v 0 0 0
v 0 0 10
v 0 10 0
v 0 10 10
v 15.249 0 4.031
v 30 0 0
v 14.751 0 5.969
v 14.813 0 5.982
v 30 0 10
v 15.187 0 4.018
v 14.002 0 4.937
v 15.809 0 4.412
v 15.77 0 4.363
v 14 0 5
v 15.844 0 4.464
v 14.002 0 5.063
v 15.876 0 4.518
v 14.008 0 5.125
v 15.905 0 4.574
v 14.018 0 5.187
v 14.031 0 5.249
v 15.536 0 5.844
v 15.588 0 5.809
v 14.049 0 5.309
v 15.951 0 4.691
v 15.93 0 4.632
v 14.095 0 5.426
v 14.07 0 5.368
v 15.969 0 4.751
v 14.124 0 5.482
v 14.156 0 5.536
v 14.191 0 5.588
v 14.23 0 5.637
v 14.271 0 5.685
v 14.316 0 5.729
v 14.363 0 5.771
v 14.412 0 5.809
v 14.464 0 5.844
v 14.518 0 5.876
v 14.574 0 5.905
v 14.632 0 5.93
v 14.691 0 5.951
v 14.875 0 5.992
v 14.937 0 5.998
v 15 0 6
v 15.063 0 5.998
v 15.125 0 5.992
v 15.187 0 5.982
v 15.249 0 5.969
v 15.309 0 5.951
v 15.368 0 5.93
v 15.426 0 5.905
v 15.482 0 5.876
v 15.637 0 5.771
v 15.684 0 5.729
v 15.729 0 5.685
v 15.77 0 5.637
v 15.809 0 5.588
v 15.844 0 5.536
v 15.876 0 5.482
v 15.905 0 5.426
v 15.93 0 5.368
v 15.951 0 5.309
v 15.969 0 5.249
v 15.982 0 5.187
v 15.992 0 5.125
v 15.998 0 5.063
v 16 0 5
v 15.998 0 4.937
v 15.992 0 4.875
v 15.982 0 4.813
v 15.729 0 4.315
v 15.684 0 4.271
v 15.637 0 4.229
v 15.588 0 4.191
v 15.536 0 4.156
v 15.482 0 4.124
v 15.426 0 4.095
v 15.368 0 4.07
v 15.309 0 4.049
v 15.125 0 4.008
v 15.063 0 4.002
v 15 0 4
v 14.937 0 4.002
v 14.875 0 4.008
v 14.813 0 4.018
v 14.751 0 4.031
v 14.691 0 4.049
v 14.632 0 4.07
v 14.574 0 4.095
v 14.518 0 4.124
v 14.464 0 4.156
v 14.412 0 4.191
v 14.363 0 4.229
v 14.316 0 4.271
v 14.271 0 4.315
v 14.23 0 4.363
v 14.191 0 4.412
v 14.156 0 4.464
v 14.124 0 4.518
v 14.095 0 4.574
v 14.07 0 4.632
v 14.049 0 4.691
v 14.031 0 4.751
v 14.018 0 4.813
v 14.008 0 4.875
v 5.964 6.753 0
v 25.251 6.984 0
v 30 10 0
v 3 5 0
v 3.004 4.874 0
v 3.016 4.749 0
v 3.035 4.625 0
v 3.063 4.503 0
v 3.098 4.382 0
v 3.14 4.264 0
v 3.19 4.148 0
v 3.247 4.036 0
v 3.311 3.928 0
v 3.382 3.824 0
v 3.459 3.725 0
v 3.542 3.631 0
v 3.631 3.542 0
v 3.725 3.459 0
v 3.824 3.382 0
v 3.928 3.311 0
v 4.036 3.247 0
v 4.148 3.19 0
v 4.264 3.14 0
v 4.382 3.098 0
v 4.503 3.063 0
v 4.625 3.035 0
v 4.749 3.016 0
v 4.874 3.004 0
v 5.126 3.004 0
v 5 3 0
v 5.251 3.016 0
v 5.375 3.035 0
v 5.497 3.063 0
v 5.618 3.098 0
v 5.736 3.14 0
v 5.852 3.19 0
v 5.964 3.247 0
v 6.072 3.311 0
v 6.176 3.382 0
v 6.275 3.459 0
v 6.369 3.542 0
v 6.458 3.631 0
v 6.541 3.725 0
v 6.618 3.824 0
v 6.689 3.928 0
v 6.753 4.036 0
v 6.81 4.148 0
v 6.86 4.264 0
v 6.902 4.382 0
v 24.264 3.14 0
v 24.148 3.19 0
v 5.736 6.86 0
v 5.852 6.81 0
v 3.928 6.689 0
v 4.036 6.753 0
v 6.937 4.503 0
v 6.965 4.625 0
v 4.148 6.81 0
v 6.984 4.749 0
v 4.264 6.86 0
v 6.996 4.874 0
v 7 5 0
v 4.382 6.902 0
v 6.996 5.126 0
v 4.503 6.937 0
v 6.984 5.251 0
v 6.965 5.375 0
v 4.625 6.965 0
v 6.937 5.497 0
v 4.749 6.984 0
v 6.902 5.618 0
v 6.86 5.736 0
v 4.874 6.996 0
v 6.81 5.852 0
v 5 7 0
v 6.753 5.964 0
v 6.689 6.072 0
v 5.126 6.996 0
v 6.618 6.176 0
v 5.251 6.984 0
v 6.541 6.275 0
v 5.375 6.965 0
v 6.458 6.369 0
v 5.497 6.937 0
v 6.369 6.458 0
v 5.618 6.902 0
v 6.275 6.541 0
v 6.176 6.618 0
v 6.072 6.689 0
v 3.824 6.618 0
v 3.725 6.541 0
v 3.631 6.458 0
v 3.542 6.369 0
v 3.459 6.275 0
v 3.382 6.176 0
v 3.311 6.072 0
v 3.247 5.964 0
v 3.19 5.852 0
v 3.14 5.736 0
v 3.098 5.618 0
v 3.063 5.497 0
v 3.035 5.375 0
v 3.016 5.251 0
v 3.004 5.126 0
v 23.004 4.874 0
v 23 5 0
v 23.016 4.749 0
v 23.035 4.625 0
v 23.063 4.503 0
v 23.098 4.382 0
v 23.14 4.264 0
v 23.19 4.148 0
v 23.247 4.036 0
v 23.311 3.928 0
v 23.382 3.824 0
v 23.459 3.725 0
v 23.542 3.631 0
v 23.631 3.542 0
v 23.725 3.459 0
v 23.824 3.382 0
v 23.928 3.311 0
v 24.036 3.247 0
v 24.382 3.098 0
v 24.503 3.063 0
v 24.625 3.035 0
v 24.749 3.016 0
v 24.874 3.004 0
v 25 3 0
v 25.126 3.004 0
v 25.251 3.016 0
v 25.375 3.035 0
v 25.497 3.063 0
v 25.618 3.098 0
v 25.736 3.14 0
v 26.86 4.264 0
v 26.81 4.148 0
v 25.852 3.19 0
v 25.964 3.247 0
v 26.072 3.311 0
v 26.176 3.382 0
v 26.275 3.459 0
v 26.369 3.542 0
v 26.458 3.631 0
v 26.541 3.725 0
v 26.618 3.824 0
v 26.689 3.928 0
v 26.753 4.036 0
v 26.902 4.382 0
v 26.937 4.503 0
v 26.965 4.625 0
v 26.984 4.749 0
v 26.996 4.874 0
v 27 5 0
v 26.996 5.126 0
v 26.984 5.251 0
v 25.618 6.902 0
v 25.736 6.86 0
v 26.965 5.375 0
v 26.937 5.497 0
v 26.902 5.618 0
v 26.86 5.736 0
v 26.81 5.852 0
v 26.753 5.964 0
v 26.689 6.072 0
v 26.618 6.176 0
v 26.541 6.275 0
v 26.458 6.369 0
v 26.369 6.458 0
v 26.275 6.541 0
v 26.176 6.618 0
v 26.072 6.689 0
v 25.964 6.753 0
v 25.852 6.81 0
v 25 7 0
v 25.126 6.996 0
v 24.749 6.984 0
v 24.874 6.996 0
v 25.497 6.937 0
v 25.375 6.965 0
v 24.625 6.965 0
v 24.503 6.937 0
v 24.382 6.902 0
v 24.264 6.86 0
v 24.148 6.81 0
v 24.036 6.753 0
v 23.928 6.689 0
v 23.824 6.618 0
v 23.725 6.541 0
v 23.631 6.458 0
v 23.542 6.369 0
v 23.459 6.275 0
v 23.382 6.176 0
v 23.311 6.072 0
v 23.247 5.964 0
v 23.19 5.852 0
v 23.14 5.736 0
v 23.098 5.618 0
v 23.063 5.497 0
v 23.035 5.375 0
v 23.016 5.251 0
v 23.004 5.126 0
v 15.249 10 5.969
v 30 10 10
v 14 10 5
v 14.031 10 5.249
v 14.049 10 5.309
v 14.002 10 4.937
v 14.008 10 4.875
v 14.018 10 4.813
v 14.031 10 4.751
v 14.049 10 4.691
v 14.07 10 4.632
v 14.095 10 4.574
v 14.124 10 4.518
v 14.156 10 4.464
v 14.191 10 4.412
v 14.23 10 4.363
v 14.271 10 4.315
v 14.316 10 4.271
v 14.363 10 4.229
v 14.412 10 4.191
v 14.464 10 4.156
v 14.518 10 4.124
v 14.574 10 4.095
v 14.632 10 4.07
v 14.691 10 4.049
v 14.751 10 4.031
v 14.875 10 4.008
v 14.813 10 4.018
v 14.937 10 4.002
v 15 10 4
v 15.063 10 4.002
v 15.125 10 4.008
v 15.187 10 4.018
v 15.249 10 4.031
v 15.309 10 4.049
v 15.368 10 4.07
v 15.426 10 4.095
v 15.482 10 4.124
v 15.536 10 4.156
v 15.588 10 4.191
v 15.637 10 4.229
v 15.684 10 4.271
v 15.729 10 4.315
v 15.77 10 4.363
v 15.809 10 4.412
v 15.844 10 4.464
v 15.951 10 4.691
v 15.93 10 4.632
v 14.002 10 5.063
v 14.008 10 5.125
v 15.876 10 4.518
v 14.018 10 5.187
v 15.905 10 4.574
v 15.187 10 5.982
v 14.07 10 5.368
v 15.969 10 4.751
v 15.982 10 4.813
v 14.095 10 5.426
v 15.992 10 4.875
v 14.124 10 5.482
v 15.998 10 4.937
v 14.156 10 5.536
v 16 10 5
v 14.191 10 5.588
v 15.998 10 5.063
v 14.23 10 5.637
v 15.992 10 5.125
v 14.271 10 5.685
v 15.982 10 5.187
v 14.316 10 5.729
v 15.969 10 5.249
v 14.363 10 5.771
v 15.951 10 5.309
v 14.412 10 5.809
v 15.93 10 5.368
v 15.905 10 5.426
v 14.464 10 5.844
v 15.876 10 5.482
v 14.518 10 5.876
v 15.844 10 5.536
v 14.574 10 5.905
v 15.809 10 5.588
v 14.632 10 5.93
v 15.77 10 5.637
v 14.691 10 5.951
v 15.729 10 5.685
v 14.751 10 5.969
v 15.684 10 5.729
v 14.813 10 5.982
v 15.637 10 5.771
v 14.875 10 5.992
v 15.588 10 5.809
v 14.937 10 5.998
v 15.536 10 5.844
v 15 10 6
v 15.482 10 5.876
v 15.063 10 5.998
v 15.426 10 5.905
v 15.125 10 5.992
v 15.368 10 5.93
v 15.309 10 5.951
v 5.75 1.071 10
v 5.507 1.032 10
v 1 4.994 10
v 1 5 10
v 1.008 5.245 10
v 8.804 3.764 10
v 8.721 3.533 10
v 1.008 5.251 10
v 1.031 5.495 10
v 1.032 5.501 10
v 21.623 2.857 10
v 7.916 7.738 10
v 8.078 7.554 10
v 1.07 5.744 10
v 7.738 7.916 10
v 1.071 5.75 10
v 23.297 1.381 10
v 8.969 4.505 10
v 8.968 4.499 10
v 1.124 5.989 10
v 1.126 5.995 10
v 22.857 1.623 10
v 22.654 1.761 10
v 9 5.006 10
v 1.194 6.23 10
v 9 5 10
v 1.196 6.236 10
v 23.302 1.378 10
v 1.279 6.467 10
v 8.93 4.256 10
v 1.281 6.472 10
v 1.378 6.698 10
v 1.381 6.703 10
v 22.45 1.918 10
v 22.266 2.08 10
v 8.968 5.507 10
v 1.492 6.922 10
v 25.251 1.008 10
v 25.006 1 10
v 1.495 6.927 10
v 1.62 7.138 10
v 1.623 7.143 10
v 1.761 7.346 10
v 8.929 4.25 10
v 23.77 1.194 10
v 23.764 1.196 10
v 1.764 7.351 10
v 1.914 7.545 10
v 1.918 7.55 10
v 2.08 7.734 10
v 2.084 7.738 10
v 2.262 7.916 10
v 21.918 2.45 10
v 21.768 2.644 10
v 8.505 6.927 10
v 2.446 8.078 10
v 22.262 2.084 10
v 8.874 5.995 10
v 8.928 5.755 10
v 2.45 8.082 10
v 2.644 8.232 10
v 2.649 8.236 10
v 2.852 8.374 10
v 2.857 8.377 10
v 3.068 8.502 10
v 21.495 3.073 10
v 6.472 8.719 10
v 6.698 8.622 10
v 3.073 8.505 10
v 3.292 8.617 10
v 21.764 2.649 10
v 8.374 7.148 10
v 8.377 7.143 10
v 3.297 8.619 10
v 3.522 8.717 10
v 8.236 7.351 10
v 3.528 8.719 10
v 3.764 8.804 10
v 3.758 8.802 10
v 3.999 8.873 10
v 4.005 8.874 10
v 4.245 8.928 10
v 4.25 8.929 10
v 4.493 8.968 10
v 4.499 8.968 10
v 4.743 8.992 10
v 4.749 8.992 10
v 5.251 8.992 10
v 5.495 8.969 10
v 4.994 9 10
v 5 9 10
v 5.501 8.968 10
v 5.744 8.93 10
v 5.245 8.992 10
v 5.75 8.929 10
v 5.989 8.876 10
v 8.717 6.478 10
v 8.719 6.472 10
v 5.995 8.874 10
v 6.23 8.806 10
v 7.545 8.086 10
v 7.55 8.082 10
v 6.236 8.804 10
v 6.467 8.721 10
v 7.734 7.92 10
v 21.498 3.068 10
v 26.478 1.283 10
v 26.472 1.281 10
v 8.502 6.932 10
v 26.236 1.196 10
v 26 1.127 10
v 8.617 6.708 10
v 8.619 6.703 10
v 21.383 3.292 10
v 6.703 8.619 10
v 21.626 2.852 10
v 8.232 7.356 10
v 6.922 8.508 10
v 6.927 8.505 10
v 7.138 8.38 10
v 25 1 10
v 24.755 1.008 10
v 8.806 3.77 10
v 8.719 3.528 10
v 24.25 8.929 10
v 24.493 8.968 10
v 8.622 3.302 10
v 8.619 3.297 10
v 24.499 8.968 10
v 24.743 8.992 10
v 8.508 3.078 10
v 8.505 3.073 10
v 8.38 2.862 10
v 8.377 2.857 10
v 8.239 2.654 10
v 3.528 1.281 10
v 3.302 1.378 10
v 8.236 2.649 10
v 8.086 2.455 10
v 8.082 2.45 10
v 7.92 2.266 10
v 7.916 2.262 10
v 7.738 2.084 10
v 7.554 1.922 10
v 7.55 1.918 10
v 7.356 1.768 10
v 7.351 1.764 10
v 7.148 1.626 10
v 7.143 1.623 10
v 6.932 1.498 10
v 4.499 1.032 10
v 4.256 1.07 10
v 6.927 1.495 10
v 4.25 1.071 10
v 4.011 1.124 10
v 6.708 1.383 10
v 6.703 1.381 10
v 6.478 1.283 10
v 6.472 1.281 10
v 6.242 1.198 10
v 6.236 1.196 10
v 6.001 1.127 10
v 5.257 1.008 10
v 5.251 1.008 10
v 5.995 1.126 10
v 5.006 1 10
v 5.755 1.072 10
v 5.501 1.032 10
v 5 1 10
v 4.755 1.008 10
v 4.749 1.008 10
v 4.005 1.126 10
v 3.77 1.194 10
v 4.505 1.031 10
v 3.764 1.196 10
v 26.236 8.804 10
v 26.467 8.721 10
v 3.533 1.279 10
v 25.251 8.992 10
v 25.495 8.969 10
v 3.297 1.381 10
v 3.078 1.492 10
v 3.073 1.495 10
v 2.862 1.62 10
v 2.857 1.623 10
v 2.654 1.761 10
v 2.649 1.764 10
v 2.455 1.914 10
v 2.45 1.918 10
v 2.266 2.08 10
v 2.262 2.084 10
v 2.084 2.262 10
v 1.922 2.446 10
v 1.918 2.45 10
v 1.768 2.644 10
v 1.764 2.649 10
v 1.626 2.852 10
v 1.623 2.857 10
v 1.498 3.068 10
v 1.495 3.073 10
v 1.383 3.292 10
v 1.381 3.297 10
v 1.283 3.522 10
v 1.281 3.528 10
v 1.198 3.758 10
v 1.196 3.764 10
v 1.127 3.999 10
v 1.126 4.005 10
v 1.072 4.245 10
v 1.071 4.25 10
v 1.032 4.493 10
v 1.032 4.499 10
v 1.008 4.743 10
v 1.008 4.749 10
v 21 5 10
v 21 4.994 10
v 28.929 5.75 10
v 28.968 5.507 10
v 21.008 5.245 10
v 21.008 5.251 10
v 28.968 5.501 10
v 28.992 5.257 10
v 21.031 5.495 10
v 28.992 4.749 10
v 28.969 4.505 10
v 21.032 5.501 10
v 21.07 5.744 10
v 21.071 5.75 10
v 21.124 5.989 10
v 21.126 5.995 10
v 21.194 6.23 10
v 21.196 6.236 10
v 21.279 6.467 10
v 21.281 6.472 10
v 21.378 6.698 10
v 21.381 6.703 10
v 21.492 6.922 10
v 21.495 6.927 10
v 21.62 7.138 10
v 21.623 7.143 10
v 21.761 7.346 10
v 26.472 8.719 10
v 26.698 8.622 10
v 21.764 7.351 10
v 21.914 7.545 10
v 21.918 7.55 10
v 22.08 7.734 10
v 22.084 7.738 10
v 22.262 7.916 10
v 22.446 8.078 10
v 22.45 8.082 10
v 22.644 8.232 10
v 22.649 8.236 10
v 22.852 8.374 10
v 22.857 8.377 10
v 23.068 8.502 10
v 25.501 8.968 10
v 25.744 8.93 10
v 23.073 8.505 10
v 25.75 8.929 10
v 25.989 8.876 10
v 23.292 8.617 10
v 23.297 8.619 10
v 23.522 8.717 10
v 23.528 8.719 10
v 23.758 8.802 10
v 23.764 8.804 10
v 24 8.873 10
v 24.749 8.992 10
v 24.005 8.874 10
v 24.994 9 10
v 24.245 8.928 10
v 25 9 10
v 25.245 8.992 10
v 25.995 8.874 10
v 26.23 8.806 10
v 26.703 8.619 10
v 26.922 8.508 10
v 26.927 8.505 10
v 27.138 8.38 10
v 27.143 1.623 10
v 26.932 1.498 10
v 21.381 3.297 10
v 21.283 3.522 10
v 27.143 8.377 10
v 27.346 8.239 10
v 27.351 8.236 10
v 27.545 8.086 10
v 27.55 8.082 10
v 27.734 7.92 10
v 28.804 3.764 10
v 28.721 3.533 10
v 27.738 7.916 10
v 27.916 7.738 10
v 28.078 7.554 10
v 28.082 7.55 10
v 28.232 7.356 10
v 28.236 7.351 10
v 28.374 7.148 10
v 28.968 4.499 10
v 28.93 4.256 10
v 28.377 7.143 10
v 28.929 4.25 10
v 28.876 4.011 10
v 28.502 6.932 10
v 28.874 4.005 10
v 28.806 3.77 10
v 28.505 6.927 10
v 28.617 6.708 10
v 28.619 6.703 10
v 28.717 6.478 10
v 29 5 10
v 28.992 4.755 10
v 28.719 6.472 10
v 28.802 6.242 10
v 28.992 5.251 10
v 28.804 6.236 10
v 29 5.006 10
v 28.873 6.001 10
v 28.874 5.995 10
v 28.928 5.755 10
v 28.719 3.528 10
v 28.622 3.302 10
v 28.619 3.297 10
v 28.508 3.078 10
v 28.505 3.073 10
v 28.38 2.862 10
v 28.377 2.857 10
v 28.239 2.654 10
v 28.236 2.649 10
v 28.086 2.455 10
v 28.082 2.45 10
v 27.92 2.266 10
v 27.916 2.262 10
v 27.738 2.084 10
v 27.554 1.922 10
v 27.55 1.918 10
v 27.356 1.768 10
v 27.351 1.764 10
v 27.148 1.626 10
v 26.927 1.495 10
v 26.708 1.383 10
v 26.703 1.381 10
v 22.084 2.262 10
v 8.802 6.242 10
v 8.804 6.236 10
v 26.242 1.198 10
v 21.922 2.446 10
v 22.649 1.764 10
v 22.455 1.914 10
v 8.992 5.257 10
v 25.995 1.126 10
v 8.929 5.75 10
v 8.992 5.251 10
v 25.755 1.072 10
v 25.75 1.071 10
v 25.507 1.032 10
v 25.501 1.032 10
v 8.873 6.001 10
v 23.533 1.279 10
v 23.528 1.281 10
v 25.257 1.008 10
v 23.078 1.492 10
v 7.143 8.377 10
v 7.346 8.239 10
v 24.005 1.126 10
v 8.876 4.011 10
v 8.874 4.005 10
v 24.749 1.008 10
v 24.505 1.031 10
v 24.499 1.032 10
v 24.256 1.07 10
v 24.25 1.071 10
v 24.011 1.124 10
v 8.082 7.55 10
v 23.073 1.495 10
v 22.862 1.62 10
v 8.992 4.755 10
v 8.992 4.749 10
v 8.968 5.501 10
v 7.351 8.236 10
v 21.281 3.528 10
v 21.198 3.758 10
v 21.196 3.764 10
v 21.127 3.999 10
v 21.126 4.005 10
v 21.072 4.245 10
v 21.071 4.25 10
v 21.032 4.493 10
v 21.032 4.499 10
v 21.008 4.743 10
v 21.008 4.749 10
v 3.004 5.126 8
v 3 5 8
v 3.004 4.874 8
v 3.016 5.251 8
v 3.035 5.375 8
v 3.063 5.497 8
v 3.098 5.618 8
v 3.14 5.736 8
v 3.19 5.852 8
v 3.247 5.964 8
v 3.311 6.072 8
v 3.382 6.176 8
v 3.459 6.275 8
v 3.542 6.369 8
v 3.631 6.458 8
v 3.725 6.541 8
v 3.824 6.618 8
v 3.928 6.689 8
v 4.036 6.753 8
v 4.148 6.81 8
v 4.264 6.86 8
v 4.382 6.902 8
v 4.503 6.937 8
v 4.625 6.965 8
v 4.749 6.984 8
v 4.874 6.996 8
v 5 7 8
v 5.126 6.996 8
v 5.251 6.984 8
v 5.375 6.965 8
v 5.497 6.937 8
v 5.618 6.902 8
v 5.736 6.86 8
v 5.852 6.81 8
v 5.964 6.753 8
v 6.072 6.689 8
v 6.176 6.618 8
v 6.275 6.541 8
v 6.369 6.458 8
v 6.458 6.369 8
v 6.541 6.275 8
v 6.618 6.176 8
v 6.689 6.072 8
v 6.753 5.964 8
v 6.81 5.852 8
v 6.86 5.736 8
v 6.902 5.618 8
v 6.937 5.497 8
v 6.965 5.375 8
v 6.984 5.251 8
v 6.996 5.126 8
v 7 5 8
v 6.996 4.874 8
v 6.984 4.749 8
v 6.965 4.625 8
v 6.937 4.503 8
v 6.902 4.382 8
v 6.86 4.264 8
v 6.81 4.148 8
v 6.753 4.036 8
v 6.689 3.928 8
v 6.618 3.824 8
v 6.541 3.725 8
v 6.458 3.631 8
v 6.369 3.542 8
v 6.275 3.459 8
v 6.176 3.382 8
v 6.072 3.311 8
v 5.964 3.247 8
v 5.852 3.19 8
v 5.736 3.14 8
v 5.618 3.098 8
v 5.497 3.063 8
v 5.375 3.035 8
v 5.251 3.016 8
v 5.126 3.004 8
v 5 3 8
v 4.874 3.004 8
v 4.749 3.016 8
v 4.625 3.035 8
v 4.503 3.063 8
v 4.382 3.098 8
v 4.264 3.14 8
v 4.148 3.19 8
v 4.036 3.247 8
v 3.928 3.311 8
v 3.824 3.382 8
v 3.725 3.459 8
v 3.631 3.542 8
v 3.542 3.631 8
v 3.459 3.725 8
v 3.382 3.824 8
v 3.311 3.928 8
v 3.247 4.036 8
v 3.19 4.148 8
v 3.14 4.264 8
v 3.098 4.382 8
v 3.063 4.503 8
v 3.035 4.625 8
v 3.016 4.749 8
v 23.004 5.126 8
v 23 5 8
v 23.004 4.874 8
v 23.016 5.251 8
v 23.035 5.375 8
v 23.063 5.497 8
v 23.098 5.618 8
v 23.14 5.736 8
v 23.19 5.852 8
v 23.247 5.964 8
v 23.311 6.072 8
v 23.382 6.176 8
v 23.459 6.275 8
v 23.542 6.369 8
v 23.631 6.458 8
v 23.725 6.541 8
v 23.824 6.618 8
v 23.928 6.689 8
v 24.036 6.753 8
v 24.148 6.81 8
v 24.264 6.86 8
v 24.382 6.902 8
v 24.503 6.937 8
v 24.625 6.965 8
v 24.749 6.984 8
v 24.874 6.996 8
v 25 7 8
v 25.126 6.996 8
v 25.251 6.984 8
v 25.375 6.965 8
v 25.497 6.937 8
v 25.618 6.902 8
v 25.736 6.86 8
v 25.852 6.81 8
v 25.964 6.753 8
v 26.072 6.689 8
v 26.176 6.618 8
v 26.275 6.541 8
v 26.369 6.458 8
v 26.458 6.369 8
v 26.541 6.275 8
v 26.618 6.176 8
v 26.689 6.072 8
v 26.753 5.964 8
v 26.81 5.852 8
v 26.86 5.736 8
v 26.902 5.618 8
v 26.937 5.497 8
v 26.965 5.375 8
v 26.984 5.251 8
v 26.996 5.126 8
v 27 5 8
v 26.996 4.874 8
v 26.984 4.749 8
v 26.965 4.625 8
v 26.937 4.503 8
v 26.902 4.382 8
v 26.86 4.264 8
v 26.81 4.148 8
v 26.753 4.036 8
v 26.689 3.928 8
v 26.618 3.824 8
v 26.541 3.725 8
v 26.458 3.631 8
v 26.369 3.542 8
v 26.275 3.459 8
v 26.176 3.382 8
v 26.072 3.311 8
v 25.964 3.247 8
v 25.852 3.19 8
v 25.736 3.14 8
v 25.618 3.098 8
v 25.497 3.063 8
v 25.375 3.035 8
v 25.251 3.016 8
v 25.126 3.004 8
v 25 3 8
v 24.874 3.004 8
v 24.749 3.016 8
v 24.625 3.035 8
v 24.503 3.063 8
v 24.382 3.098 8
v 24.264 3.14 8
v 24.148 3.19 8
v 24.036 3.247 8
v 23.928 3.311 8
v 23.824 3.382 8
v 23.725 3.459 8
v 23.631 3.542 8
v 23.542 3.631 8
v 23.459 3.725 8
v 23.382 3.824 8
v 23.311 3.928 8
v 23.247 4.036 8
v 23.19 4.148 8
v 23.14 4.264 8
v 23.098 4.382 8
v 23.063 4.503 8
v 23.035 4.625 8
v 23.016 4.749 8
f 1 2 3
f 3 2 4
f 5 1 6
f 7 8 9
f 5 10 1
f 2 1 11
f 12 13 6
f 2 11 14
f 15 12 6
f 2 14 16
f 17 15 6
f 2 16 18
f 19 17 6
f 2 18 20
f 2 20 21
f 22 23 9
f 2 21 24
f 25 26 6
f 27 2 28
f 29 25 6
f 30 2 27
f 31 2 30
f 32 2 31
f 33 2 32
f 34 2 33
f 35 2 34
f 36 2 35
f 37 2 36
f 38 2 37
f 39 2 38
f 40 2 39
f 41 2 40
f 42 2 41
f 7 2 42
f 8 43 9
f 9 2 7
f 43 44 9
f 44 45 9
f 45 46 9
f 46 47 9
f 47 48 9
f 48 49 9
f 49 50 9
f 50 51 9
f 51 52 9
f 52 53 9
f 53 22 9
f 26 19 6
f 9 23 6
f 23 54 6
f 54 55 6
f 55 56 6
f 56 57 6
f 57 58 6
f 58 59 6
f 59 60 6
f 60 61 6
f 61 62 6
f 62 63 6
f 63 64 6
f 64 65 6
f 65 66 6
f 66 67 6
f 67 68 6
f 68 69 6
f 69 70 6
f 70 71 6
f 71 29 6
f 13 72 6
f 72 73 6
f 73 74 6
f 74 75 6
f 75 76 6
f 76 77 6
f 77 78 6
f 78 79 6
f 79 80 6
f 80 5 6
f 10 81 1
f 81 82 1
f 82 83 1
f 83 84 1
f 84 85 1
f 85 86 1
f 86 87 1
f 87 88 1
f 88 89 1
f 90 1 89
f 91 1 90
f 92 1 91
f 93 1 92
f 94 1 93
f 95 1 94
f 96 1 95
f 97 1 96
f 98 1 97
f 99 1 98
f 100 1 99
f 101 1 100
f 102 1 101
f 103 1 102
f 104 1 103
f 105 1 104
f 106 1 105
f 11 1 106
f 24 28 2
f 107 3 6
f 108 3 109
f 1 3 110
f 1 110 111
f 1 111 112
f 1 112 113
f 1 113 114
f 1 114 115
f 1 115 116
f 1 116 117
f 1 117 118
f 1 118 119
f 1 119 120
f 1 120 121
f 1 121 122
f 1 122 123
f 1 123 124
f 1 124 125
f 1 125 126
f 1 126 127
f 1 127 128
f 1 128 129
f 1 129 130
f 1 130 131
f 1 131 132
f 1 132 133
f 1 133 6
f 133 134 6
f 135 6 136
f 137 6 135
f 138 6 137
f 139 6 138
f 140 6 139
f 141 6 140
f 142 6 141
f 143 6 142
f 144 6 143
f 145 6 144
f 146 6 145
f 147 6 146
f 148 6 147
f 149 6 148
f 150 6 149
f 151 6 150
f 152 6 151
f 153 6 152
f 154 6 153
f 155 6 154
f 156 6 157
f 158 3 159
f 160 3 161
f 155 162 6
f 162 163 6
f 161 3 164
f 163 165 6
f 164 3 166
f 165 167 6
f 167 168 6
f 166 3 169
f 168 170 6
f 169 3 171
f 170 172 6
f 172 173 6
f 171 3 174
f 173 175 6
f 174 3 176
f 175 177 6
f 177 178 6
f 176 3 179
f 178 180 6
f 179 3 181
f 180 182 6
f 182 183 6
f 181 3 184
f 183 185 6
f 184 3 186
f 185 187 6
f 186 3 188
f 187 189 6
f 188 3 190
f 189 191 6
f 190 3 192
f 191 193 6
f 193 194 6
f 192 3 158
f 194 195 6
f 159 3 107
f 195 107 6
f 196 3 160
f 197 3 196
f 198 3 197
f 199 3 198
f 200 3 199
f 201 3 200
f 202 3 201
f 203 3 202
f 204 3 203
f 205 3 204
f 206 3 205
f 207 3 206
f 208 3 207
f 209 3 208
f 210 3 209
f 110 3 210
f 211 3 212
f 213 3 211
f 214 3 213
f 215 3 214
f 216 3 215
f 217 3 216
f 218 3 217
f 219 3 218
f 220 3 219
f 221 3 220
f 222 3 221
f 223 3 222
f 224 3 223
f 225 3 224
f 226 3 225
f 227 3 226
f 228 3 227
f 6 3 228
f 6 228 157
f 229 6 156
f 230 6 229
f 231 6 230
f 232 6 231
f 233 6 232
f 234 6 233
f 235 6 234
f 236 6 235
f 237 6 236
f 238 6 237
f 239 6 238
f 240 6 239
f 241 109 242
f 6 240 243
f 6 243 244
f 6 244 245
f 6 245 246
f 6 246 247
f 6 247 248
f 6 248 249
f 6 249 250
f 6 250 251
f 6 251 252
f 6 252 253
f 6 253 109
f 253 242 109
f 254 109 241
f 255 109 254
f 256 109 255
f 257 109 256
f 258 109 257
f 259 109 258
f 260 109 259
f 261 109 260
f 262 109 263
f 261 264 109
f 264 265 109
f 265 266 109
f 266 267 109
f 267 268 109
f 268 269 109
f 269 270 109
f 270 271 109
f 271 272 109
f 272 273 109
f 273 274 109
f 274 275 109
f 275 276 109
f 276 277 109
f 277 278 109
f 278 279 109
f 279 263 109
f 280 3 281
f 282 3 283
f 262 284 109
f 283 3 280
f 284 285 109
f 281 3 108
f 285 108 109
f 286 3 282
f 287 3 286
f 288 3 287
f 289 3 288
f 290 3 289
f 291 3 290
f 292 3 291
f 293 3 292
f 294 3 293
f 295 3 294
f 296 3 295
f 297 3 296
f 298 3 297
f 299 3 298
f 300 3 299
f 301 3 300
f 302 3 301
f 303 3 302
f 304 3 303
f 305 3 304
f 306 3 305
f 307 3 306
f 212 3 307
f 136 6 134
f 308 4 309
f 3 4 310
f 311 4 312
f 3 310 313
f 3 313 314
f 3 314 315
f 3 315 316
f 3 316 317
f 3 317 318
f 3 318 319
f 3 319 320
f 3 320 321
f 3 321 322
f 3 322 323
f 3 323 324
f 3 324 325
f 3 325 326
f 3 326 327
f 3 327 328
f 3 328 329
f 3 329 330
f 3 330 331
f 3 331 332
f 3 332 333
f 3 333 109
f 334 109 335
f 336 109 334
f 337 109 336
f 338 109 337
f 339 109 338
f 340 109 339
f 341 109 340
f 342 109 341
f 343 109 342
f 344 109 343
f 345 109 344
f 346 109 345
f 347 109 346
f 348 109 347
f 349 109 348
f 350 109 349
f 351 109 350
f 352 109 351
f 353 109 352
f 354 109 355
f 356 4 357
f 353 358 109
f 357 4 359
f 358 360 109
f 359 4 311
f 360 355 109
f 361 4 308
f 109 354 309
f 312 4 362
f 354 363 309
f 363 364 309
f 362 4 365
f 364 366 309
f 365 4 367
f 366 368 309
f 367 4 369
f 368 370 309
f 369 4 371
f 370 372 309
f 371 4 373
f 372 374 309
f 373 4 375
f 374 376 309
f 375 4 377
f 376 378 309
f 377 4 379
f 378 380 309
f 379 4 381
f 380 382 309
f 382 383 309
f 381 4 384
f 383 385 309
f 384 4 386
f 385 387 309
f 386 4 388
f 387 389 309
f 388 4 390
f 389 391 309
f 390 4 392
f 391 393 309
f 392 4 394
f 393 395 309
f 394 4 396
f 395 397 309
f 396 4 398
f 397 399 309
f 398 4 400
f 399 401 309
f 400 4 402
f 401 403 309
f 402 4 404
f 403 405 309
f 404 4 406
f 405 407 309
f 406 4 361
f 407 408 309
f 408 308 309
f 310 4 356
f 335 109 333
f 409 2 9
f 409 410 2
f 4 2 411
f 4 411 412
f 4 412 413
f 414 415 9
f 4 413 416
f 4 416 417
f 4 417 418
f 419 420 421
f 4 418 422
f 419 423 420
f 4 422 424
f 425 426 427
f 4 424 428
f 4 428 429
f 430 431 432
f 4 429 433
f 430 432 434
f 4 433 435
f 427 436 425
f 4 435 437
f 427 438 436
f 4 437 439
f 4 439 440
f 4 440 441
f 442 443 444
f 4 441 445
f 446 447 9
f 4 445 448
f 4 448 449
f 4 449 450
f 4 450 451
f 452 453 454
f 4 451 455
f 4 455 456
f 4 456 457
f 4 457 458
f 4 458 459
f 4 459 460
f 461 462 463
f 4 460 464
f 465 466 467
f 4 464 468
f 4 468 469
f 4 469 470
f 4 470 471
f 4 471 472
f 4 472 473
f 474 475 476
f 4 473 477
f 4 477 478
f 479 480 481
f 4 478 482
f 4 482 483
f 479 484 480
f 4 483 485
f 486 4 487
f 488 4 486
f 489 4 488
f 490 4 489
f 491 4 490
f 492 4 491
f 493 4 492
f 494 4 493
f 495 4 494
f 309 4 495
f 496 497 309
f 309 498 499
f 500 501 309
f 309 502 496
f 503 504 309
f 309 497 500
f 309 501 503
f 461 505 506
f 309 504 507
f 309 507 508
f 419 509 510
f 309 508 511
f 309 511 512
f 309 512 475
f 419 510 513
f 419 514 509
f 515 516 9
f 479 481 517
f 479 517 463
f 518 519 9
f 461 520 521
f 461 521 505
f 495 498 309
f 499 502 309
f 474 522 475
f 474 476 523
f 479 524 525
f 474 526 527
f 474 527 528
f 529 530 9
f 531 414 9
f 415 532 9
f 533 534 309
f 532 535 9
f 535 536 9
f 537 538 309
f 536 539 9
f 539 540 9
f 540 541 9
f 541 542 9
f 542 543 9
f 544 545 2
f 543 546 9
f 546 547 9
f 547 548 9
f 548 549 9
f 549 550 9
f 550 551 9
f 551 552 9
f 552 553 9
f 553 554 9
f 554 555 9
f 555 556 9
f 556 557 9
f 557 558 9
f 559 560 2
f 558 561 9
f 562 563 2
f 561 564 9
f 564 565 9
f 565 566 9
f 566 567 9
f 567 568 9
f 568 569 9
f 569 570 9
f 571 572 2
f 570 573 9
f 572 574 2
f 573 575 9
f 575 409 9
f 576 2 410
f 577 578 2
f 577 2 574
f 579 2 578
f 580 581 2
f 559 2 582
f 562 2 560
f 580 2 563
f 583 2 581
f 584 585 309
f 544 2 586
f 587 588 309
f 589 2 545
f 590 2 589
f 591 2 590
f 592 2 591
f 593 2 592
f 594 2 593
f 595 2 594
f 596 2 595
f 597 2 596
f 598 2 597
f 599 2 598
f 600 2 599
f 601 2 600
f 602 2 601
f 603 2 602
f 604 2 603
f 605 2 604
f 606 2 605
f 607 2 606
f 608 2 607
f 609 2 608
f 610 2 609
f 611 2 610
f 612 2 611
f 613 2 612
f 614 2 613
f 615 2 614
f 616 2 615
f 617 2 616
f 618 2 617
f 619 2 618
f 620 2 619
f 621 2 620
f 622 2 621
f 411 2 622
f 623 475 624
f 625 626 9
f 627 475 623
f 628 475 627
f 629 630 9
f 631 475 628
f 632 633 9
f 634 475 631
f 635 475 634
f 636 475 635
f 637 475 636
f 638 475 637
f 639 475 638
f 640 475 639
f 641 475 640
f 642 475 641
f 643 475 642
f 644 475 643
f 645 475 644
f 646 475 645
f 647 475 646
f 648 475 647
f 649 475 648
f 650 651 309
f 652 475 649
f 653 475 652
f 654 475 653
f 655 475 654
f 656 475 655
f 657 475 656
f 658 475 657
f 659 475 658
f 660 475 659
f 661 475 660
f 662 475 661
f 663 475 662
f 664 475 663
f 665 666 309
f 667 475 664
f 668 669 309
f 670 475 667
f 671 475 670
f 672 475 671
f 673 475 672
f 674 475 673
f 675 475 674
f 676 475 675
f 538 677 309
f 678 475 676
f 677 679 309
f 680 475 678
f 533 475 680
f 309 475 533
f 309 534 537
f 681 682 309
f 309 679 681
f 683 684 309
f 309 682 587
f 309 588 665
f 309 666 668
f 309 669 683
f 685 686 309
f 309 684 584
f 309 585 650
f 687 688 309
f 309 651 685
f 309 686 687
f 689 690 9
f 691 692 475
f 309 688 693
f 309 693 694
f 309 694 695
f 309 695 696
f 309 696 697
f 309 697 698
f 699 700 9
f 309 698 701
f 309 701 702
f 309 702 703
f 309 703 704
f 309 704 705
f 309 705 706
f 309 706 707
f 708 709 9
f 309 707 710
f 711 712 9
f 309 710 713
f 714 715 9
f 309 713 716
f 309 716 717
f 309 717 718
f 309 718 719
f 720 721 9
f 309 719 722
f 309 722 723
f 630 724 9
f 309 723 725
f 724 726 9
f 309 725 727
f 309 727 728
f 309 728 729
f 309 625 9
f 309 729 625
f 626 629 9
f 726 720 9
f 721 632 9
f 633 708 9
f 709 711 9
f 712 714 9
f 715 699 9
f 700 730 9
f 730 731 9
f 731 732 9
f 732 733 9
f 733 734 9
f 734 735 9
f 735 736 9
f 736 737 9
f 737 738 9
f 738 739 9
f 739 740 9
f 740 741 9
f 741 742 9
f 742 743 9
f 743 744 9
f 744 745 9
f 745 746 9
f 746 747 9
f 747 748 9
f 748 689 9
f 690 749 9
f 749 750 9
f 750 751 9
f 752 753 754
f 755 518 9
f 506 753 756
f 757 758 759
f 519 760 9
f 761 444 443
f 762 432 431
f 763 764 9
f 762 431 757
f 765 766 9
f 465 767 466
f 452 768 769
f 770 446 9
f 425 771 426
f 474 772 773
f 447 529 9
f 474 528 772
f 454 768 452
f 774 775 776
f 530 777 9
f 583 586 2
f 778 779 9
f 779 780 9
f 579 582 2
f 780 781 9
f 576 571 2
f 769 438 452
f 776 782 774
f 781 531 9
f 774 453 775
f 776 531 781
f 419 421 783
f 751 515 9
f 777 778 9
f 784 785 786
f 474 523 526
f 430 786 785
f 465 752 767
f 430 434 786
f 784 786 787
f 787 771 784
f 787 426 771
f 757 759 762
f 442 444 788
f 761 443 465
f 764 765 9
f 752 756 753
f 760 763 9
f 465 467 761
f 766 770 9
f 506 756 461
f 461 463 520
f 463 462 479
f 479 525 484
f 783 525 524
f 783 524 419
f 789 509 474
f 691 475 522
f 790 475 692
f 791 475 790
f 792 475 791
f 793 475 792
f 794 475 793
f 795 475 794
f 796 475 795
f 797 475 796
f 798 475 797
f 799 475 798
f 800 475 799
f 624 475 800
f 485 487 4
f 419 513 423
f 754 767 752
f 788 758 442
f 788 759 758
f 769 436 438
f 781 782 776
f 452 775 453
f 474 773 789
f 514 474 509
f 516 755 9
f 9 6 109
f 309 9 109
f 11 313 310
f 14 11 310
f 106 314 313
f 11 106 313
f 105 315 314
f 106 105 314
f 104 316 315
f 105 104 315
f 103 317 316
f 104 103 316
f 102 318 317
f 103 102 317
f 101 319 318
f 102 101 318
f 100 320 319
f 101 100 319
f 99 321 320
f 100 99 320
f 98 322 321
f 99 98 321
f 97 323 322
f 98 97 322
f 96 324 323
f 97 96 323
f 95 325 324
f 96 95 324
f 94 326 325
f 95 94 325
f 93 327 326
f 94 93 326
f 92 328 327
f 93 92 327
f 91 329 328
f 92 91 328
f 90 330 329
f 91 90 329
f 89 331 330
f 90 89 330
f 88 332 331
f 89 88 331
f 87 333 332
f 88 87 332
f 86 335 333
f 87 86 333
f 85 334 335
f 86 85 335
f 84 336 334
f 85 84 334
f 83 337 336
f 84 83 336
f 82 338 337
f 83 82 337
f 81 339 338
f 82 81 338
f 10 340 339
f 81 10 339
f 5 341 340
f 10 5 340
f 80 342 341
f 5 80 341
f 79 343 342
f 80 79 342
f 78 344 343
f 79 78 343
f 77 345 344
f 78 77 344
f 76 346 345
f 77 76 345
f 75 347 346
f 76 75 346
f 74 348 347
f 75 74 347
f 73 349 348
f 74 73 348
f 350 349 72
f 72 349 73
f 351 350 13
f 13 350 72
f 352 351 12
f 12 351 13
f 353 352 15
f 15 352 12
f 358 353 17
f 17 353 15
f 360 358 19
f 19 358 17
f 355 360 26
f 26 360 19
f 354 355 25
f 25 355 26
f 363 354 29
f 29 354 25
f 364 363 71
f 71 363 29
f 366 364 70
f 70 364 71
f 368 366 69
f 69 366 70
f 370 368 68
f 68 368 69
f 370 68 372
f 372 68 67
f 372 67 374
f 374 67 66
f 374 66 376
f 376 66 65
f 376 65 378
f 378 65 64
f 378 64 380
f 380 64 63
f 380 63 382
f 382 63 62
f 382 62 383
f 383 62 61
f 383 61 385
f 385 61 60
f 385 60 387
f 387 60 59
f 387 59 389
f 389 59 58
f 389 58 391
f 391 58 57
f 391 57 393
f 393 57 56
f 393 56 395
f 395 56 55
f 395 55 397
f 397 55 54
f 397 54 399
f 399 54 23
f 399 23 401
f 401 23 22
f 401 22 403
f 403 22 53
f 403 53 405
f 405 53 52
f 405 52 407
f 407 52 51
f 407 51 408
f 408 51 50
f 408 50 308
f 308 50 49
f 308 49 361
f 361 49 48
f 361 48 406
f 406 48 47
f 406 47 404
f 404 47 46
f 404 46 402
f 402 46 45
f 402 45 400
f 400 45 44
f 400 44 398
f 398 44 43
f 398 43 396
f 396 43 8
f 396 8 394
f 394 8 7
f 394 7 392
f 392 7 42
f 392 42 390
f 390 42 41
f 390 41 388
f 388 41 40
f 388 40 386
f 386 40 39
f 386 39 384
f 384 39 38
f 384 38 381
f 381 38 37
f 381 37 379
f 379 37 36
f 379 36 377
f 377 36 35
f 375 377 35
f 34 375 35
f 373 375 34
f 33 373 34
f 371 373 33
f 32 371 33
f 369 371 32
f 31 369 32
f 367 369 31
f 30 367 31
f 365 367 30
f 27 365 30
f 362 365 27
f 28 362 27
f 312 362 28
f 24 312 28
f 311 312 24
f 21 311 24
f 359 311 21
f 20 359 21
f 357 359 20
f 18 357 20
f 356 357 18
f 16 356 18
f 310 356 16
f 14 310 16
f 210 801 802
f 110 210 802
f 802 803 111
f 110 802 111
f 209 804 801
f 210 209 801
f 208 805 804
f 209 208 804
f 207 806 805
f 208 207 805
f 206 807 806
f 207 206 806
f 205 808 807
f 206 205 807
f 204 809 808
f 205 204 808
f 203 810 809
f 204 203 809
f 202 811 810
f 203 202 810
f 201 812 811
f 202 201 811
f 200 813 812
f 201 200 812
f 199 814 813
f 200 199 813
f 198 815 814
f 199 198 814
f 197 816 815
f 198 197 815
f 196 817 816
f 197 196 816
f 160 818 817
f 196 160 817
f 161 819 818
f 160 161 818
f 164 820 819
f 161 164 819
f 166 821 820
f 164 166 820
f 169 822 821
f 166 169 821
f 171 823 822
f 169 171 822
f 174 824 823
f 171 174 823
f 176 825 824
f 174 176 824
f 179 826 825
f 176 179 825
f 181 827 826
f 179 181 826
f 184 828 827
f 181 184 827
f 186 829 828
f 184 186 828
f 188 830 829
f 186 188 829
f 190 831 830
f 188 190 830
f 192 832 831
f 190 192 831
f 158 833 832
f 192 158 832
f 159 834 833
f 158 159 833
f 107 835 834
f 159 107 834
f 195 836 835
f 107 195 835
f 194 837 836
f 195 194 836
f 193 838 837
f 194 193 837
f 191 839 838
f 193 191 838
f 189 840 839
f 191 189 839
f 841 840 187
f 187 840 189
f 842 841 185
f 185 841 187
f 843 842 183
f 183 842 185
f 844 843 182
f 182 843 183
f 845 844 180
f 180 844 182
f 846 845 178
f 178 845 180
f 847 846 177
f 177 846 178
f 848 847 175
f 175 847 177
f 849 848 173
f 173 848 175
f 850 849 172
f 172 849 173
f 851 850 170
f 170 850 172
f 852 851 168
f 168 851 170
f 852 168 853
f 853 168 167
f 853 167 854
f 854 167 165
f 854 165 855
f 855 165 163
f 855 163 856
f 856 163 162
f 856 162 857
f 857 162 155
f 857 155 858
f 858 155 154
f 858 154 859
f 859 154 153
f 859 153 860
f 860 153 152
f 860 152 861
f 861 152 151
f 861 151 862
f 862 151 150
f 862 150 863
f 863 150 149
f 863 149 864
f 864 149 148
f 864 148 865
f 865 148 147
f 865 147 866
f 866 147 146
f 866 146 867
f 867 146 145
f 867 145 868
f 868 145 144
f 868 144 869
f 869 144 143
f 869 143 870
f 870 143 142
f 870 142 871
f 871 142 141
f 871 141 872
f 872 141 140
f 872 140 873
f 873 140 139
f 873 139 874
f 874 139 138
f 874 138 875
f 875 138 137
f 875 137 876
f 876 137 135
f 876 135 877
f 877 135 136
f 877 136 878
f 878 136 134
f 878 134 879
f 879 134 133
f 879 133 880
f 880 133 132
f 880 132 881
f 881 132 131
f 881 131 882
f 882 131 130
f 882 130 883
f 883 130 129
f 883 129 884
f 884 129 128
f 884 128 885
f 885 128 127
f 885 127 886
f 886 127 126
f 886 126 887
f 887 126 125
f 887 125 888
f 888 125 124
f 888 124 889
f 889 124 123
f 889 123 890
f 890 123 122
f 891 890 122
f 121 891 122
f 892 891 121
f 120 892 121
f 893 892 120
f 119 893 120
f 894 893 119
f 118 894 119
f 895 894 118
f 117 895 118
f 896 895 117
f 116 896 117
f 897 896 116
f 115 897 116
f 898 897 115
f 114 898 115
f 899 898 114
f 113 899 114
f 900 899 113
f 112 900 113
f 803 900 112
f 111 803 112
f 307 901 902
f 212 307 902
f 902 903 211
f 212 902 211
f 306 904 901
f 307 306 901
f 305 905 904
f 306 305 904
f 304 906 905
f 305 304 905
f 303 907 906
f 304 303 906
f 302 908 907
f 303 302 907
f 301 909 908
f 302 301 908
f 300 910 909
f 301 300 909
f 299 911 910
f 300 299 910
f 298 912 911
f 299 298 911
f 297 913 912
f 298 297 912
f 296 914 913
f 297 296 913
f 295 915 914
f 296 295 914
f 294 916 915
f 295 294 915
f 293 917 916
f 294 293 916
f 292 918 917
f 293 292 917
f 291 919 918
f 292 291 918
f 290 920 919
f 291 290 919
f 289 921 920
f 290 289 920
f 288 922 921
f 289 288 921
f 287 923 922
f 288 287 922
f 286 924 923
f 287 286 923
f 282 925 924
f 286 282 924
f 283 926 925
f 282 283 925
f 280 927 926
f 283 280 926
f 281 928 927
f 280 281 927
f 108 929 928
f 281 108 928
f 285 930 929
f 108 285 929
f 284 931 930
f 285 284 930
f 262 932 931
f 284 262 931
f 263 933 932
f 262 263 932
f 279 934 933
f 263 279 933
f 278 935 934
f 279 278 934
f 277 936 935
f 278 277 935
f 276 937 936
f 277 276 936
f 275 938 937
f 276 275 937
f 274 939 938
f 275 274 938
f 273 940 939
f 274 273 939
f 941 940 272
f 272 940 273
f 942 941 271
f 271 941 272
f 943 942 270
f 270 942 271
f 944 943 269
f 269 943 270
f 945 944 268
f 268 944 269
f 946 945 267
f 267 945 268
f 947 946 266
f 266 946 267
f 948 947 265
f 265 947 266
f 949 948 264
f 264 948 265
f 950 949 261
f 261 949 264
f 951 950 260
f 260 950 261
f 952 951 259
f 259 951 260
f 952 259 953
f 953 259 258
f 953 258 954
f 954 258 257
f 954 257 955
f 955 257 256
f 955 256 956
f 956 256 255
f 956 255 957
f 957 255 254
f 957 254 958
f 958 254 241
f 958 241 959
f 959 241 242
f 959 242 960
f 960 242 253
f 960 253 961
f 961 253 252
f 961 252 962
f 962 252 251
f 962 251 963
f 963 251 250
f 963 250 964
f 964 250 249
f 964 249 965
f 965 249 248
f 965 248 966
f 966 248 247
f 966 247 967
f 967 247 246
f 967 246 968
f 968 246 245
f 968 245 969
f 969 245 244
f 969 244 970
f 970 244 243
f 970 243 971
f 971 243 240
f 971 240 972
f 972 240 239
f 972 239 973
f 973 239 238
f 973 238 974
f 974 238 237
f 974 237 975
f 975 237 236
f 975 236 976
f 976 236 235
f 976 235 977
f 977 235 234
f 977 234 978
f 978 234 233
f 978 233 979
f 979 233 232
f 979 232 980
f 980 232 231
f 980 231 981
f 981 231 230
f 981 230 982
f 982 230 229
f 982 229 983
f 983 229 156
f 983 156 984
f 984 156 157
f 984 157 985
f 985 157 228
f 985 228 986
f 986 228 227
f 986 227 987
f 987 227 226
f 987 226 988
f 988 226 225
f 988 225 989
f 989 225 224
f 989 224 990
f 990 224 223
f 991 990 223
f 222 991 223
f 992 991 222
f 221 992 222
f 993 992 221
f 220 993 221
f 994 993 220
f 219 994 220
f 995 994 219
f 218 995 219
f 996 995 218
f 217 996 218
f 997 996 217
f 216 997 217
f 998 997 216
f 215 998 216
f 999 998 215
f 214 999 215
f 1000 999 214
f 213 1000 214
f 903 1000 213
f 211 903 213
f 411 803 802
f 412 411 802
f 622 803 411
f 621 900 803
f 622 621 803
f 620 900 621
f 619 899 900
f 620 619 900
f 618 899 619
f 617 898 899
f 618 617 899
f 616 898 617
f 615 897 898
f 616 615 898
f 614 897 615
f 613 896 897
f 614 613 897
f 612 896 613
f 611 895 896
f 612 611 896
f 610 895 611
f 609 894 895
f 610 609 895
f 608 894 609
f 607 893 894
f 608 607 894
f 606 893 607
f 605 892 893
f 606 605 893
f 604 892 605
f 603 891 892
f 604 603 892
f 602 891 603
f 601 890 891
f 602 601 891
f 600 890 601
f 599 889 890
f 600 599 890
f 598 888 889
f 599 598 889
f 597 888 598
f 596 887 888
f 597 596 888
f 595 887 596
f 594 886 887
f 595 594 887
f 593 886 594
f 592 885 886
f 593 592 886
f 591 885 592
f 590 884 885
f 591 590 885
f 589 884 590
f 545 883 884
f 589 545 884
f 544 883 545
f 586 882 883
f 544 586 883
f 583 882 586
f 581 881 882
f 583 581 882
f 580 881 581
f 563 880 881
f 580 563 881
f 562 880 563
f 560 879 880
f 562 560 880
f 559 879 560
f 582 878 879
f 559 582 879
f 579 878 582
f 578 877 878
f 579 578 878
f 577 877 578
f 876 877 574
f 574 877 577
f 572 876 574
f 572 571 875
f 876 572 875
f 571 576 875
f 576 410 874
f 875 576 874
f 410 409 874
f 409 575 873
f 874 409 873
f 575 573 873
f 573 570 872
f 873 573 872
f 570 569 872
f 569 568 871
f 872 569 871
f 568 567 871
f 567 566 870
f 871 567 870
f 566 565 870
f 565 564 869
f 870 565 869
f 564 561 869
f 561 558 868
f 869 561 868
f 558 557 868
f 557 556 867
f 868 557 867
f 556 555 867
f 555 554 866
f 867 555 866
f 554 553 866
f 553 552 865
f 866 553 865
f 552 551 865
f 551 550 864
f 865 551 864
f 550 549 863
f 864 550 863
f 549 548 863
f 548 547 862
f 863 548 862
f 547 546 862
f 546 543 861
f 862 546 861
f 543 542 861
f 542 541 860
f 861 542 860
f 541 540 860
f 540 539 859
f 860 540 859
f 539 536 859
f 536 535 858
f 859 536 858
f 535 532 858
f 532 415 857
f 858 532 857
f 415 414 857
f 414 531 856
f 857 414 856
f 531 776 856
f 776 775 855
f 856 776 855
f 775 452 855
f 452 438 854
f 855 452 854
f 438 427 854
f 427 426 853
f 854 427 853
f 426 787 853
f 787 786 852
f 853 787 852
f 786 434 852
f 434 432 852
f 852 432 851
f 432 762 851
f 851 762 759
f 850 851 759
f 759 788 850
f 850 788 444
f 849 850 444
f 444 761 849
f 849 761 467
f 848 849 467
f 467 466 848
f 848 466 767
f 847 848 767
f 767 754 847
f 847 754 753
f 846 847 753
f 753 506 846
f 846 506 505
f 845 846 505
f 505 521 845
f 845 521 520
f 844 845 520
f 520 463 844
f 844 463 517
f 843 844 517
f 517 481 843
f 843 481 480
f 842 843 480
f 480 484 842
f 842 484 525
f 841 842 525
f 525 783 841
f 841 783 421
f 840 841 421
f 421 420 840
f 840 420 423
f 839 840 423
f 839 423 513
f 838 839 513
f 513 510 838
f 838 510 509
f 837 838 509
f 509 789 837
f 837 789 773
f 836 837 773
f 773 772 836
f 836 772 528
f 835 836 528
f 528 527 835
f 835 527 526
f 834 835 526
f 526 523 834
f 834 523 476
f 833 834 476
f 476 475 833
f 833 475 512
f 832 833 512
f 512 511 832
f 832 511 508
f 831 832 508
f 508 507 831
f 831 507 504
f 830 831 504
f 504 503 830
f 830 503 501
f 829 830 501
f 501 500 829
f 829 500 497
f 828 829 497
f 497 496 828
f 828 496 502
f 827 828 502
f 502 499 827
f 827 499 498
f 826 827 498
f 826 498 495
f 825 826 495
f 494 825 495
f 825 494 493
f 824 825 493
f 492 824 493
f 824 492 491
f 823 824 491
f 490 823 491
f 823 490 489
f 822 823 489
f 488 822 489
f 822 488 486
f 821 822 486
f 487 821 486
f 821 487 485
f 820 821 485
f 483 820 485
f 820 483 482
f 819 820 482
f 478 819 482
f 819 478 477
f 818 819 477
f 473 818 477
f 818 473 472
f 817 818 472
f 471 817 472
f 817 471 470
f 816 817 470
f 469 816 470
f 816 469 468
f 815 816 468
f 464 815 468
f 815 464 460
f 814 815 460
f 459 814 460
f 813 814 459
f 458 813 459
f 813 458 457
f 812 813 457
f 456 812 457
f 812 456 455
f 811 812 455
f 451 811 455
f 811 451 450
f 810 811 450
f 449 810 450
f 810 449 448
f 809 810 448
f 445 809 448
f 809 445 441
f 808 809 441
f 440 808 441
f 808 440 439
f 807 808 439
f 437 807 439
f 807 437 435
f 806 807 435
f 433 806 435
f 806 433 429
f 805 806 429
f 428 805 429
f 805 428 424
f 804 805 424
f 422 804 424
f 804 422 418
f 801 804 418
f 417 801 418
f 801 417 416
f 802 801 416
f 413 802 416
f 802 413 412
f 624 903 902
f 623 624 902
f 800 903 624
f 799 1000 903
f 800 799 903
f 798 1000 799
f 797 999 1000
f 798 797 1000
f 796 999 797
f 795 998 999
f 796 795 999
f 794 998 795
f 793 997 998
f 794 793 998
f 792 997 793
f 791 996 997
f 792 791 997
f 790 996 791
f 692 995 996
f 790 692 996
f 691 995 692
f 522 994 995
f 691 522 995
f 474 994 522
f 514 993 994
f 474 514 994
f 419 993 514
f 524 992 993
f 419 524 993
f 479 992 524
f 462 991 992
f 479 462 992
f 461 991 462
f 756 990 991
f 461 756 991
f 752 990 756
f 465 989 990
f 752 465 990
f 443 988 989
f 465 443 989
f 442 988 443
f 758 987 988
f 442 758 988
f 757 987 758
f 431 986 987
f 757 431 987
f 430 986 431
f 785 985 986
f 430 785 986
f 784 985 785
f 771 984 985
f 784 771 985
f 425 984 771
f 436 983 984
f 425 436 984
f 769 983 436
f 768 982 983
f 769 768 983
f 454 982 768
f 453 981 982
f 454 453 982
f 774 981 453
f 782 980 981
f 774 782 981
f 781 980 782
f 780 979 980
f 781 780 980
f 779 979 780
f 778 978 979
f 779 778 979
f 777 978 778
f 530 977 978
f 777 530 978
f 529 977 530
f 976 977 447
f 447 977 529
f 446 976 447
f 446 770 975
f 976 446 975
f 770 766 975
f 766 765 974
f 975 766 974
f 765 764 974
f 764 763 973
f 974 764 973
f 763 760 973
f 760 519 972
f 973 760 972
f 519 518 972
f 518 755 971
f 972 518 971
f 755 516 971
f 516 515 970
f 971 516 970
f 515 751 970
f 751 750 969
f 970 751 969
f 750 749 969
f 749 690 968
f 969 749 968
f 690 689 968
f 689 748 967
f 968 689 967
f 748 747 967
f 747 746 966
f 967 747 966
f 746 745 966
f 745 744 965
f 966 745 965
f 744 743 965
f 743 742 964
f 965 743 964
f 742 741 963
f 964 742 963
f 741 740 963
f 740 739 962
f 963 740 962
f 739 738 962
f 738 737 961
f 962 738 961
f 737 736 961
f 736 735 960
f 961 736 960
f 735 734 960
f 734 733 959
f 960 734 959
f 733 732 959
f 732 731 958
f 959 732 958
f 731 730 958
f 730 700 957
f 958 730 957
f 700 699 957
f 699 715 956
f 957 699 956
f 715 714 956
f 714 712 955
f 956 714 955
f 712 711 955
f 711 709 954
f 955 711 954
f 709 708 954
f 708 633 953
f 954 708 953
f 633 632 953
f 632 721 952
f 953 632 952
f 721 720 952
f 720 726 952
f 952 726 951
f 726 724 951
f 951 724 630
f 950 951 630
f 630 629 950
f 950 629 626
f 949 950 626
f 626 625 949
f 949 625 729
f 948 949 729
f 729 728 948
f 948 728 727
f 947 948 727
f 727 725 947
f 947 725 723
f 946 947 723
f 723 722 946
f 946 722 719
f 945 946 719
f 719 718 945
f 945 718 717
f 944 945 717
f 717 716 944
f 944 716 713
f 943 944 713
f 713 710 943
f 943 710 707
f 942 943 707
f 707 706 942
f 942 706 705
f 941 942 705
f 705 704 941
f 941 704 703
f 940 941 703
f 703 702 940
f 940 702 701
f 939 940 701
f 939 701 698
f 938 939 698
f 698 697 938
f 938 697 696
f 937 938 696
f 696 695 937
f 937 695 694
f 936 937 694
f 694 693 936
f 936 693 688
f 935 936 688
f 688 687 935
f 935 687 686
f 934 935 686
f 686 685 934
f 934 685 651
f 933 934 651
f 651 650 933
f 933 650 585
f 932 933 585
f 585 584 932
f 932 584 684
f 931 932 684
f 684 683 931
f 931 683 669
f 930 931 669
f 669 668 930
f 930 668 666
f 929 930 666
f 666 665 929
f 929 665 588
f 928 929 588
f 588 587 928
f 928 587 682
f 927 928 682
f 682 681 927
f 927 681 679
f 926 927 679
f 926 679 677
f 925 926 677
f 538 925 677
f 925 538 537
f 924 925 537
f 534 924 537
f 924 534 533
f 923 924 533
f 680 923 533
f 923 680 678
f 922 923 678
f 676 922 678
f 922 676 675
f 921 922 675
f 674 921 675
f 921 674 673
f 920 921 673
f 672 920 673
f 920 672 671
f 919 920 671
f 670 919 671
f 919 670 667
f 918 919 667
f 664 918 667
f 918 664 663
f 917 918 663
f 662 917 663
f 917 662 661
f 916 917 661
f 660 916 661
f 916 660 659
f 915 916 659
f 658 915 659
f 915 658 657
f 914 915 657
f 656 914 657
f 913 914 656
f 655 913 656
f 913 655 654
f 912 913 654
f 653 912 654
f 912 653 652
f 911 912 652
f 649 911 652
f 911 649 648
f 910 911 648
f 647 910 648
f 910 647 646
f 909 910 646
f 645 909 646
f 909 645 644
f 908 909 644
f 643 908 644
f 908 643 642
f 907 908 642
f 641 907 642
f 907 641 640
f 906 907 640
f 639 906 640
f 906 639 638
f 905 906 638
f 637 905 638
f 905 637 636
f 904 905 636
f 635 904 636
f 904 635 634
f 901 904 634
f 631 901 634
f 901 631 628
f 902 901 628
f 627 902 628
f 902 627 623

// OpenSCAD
difference()
{
	cube([30,10,10]);
	translate([5,5,-0.5])
		cylinder(h=11,r=2, $fn=100);
	translate([5,5,8])
		cylinder(h=2.1,r1=2,r2=4.1, center=false, $fn=100);
	translate([25,5,-0.5])
		cylinder(h=11,r=2, $fn=100);
	translate([25,5,8])
		cylinder(h=2.1,r1=2,r2=4.1, center=false, $fn=100);
	translate([15,10.5,5])
	{
		rotate([90,0,0]) cylinder(h=11,r=1, $fn=100);
	}
}
